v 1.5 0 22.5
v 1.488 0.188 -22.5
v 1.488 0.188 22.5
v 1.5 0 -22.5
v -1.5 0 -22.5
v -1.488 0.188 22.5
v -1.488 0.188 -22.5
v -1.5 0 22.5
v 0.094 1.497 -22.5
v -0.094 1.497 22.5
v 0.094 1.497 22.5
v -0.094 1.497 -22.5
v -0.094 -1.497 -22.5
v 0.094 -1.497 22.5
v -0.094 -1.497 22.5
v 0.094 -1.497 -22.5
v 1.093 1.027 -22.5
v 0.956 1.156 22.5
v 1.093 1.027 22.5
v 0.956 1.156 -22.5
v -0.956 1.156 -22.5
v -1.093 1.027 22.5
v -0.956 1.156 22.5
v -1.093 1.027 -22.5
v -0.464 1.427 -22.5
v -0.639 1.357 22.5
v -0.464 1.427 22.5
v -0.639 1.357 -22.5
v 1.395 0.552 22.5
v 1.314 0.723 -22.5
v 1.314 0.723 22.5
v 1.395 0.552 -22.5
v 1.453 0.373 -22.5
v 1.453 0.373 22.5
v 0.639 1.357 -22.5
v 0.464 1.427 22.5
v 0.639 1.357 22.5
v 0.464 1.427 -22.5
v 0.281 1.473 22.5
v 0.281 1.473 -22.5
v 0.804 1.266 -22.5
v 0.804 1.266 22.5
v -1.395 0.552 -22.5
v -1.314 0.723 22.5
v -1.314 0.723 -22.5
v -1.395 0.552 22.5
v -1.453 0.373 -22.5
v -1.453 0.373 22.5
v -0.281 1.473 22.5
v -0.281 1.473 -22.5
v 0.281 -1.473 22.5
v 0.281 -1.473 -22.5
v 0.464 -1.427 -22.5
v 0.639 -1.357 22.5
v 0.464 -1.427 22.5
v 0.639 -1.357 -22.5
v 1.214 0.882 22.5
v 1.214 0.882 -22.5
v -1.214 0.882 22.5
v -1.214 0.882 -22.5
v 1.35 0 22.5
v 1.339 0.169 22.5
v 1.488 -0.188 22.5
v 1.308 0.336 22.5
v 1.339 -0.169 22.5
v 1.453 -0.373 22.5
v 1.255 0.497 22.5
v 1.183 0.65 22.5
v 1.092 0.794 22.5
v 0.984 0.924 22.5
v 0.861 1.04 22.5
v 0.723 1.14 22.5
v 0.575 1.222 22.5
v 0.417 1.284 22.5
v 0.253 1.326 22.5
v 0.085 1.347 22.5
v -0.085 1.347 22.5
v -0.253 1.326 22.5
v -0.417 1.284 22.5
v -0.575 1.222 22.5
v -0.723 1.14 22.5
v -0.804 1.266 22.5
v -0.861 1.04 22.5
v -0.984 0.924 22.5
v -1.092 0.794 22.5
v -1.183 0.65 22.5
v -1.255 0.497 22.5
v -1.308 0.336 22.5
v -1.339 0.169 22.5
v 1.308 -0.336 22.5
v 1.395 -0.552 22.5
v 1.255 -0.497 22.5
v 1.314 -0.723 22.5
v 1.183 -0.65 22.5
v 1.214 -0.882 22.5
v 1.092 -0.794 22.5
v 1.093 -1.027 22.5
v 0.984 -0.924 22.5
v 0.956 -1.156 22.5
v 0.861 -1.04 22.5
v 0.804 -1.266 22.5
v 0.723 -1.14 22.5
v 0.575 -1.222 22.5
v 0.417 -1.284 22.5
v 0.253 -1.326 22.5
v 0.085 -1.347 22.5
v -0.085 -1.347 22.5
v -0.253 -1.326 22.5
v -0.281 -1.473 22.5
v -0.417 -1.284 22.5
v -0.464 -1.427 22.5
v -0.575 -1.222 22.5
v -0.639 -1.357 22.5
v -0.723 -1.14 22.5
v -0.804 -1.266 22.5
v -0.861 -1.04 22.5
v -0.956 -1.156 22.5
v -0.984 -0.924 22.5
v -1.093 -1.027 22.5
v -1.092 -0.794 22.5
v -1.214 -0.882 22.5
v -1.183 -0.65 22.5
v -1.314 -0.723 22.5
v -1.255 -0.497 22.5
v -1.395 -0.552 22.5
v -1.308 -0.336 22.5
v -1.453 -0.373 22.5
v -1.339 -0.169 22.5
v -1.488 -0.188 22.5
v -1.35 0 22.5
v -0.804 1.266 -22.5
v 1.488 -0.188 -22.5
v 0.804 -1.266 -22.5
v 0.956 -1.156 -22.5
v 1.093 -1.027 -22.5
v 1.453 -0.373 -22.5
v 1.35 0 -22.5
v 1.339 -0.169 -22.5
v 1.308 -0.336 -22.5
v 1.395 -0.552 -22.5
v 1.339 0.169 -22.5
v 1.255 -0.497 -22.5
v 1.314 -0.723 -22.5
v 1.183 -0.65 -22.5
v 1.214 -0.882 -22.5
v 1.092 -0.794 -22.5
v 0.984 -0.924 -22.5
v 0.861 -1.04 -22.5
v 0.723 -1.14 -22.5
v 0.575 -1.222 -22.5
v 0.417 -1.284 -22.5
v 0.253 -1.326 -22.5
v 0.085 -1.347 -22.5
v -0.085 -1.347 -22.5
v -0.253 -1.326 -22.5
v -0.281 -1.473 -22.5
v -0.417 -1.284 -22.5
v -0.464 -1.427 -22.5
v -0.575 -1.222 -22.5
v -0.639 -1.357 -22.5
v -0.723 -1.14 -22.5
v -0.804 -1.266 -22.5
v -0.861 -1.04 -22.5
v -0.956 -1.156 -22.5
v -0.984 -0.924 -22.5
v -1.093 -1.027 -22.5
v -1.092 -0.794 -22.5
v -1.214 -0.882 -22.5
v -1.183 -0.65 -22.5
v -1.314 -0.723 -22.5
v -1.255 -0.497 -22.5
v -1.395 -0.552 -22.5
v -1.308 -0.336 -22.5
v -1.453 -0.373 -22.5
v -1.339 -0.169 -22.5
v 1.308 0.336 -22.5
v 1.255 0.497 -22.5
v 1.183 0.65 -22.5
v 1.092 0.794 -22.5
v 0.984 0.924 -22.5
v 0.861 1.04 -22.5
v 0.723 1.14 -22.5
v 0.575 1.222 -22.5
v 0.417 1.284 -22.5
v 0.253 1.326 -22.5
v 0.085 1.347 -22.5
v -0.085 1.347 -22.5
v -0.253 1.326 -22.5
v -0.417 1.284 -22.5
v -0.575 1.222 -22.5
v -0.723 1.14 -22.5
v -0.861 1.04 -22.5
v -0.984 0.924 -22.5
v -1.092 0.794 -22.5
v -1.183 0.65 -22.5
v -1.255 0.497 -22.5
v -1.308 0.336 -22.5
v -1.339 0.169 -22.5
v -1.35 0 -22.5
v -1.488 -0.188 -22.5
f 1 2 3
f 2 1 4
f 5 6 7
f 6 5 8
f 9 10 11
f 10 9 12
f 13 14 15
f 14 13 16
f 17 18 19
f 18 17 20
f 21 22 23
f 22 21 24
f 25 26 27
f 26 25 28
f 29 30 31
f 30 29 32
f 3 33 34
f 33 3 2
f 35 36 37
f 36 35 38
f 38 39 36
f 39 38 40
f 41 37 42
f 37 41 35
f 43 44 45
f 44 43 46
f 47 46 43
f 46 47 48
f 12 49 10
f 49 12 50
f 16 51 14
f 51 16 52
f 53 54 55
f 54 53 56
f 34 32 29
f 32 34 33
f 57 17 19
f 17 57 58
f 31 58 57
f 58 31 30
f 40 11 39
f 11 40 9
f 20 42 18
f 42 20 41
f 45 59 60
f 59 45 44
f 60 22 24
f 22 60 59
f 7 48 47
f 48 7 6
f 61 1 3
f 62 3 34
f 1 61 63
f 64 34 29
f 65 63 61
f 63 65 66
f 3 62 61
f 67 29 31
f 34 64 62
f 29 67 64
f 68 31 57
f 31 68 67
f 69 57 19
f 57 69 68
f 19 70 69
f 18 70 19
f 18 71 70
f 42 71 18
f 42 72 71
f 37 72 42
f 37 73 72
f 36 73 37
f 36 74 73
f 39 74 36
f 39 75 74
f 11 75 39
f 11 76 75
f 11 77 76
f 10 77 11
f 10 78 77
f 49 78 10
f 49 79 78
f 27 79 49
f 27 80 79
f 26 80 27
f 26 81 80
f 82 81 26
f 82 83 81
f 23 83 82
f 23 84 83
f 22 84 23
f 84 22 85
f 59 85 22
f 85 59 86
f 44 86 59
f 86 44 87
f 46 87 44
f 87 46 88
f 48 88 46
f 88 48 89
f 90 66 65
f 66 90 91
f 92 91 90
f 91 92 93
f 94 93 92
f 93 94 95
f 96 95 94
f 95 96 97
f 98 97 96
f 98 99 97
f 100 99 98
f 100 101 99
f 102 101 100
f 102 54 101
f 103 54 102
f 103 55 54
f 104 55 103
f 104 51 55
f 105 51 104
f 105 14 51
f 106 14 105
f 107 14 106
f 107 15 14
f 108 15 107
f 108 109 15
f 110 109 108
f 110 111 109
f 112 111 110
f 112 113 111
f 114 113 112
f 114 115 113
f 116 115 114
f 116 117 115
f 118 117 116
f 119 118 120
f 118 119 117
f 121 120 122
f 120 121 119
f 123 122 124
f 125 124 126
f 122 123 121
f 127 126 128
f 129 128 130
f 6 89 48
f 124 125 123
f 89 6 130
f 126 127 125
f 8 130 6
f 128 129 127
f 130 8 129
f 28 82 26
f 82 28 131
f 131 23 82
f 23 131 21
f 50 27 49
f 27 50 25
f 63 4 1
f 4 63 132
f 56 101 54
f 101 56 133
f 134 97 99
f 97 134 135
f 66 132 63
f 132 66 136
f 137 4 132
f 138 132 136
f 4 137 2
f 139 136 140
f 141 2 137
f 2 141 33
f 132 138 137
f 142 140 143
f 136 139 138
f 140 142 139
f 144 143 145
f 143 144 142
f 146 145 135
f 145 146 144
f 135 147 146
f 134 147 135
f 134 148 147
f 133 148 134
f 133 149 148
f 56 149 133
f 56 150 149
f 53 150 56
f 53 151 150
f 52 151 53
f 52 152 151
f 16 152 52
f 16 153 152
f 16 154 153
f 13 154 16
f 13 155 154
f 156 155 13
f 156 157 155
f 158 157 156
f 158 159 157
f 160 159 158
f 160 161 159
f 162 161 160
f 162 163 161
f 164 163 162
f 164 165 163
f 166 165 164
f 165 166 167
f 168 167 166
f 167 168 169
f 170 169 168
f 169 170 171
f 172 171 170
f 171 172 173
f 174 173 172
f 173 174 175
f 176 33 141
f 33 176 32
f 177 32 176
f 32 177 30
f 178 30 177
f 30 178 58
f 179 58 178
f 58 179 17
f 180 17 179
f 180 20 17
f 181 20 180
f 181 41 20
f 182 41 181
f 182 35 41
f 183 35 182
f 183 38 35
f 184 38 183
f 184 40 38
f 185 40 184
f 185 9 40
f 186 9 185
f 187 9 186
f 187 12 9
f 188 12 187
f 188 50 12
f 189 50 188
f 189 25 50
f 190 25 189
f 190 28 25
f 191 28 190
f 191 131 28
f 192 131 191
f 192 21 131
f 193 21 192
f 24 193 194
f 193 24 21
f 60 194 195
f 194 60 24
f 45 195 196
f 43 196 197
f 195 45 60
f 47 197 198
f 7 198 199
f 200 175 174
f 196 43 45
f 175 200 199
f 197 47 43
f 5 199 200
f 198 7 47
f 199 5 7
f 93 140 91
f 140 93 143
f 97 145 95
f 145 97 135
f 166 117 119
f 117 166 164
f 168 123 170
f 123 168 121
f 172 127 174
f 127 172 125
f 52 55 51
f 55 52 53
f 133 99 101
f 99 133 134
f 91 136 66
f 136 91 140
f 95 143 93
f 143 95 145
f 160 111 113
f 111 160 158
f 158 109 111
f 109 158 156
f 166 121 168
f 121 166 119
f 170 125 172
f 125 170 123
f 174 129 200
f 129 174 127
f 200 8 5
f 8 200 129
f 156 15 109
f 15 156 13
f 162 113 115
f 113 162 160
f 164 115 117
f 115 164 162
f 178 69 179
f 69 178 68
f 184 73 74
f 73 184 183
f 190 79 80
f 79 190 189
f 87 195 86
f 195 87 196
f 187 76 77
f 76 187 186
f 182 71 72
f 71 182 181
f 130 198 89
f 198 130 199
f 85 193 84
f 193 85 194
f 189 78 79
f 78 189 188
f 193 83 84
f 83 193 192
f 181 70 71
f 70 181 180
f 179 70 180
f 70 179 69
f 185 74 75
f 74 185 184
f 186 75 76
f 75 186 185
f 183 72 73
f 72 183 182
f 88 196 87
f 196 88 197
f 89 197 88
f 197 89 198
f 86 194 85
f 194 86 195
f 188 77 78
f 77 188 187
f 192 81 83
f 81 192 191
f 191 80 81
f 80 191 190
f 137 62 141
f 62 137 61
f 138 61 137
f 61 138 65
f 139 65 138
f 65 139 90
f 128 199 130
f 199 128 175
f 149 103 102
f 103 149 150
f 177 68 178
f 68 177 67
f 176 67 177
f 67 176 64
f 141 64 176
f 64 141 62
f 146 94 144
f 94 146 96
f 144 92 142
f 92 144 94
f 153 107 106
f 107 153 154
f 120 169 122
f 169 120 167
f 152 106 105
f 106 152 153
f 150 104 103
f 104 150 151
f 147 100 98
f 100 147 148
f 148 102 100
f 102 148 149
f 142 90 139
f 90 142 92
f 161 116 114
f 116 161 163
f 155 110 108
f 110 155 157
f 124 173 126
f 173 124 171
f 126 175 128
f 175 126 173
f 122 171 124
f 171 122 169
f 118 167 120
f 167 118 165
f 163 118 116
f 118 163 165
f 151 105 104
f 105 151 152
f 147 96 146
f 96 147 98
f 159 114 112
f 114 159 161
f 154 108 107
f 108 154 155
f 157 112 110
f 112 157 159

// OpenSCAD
$fn = 50;


difference() {
	union() {
		translate(v = [0, 0, -22.5000000000]) {
			cylinder(h = 45, r = 1.5000000000);
		}
	}
	union() {
		translate(v = [0, 0, -100.0000000000]) {
			cylinder(h = 200, r = 1.3500000000);
		}
	}
}
